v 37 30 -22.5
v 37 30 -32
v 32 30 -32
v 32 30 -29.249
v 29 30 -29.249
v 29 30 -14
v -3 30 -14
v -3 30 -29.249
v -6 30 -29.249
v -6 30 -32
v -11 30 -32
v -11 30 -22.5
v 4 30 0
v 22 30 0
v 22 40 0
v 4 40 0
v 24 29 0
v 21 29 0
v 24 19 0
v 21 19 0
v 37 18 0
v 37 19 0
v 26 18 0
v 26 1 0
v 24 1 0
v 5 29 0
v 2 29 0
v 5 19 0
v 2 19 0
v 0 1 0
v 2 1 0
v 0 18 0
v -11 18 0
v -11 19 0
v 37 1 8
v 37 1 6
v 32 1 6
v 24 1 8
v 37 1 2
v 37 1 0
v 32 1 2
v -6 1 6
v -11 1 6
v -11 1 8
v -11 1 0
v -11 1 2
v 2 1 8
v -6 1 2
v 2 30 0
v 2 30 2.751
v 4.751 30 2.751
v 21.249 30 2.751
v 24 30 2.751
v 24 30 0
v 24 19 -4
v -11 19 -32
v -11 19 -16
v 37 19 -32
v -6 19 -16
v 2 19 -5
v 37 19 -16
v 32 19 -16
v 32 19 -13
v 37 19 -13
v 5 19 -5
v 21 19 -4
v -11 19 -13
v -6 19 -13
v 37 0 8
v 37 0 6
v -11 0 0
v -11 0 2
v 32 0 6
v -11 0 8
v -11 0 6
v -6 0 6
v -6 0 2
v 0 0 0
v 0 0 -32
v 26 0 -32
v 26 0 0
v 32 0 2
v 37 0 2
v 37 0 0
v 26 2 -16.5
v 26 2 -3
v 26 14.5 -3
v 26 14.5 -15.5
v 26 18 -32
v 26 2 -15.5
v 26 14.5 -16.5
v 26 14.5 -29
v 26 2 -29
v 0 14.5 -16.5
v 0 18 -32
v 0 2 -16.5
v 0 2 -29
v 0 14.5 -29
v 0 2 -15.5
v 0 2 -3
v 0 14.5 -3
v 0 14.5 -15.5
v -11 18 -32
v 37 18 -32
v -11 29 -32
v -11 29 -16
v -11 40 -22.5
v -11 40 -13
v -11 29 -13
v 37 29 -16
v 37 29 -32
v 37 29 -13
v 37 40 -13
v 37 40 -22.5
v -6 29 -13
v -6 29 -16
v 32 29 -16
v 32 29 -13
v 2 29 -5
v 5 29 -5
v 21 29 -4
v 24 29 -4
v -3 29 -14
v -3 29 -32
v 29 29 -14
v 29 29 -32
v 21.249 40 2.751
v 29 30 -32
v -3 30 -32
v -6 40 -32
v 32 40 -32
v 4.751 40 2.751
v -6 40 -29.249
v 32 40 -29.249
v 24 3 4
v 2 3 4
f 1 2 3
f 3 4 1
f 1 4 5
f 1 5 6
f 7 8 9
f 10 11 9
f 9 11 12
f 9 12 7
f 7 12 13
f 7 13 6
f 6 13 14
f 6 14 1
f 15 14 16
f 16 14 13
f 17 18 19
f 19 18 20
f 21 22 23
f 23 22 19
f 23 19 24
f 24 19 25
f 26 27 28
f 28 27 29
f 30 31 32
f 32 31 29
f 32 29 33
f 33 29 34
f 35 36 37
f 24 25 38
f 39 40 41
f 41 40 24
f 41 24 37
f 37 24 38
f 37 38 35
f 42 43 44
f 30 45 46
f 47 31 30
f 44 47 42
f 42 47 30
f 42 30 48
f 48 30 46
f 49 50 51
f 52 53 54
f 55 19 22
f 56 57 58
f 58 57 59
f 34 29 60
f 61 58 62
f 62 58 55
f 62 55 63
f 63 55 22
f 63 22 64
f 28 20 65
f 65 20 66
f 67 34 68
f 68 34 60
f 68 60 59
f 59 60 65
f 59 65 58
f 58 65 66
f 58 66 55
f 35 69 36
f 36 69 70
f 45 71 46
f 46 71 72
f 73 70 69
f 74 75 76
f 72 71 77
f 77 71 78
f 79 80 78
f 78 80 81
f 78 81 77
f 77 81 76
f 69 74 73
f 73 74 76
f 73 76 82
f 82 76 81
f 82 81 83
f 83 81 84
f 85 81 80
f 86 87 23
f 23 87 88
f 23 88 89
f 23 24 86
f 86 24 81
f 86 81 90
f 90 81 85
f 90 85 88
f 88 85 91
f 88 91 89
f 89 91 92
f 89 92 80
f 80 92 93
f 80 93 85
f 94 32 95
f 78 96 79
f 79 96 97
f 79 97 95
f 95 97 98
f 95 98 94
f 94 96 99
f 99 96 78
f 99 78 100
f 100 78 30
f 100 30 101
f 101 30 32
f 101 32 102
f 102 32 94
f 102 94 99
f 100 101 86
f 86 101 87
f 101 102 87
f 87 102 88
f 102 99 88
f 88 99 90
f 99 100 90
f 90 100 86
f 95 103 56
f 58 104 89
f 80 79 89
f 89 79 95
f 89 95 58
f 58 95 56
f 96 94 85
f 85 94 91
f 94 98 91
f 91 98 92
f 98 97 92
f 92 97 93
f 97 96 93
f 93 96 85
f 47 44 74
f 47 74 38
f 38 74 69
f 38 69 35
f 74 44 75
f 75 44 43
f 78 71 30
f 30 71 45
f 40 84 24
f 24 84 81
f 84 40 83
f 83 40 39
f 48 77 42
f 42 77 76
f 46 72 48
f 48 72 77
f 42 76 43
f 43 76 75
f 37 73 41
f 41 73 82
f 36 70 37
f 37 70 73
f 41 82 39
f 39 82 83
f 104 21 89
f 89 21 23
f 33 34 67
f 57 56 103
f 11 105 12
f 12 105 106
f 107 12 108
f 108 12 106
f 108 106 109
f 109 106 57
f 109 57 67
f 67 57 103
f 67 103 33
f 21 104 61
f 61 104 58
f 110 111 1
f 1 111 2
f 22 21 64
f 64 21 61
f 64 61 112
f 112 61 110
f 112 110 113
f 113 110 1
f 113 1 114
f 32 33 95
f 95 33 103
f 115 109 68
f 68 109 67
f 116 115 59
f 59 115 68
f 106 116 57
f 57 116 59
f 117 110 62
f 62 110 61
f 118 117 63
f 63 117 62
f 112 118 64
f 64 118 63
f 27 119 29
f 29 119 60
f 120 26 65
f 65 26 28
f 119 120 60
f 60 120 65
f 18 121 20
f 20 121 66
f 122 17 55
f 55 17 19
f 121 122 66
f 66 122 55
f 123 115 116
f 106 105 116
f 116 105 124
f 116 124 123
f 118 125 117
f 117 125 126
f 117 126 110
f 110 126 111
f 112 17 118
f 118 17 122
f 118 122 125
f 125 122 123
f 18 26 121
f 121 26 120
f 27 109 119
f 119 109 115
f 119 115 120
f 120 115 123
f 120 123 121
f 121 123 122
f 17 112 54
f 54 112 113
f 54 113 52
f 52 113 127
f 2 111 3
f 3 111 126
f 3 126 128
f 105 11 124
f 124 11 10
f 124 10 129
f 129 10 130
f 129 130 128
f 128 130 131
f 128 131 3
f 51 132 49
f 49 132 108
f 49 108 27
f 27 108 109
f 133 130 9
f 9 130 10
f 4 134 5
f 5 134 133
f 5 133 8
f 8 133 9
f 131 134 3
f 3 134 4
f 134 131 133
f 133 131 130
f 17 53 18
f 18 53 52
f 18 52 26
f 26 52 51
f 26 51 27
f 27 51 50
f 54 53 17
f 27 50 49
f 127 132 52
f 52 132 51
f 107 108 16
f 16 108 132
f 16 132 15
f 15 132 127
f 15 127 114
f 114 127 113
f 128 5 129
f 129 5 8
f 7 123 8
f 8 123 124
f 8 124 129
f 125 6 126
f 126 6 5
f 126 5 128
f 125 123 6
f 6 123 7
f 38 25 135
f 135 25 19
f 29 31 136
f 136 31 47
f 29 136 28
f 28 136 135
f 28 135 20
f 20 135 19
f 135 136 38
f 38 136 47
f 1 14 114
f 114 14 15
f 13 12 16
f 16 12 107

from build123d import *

# Parameters (mm, degrees)
SKETCH1_W            = 27
SKETCH1_H            = 18
BOSS_EXTRUDE1_DEPTH  = 26
SKETCH2_W            = 12.5
SKETCH2_H            = 12.5
CUT_EXTRUDE1_DEPTH   = 26
SKETCH4_W            = 26
SKETCH4_H            = 18
BOSS_EXTRUDE2_DEPTH  = 5
SKETCH5_W            = 12.5
SKETCH5_H            = 12.5
CUT_EXTRUDE2_DEPTH   = 26
SKETCH7_W            = 26
SKETCH7_H            = 1
BOSS_EXTRUDE3_DEPTH  = 8
SKETCH8_W            = 48
SKETCH8_H            = 8
BOSS_EXTRUDE4_DEPTH  = 1
SKETCH9_W            = 5
SKETCH9_H            = 4
CUT_EXTRUDE4_DEPTH   = 8
SKETCH10_W           = 48
SKETCH10_H           = 32
BOSS_EXTRUDE5_DEPTH  = 1
SKETCH12_W           = 5
SKETCH12_H           = 3
BOSS_EXTRUDE7_DEPTH  = 10
SKETCH14_W           = 3
SKETCH14_H           = 5
SKETCH14_H_2         = 4
BOSS_EXTRUDE8_DEPTH  = 10
BOSS_EXTRUDE9_DEPTH  = 1
SKETCH17_W           = 38
SKETCH17_H           = 2.75142147
BOSS_EXTRUDE11_DEPTH = 10
BOSS_EXTRUDE12_DEPTH = 10
BOSS_EXTRUDE13_DEPTH = 22
SKETCH21_W           = 32
SKETCH21_H           = 18
CUT_EXTRUDE5_DEPTH   = 1
SKETCH22_W           = 22
SKETCH22_H           = 18
BOSS_EXTRUDE14_DEPTH = 8
CUT_EXTRUDE6_DEPTH   = 40
BOSS_EXTRUDE17_DEPTH = 10


with BuildPart() as part:
    # Sketch1 → Boss-Extrude1 (new body)
    with BuildSketch(Plane(origin=(0, 0, 0), x_dir=(0, 0, -1), z_dir=(1, 0, 0))):
        with Locations((13.5, 9)):
            Rectangle(SKETCH1_W, SKETCH1_H)
    extrude(amount=BOSS_EXTRUDE1_DEPTH)

    # Sketch2 → Cut-Extrude1 (cut)
    with BuildSketch(Plane(origin=(26, 0, 0), x_dir=(0, 0, -1), z_dir=(1, 0, 0))):
        with Locations((9.25, 8.25)):
            Rectangle(SKETCH2_W, SKETCH2_H)
    extrude(amount=-CUT_EXTRUDE1_DEPTH, mode=Mode.SUBTRACT)

    # Sketch4 → Boss-Extrude2 (add)
    with BuildSketch(Plane(origin=(0, 0, -27), x_dir=(-1, 0, 0), z_dir=(0, 0, -1))):
        with Locations((-13, 9)):
            Rectangle(SKETCH4_W, SKETCH4_H)
    extrude(amount=BOSS_EXTRUDE2_DEPTH)

    # Sketch5 → Cut-Extrude2 (cut)
    with BuildSketch(Plane(origin=(26, 0, 0), x_dir=(0, 0, -1), z_dir=(1, 0, 0))):
        with Locations((22.75, 8.25)):
            Rectangle(SKETCH5_W, SKETCH5_H)
    extrude(amount=-CUT_EXTRUDE2_DEPTH, mode=Mode.SUBTRACT)

    # Sketch7 → Boss-Extrude3 (add)
    with BuildSketch(Plane.XY):
        with Locations((13, 0.5)):
            Rectangle(SKETCH7_W, SKETCH7_H)
    extrude(amount=BOSS_EXTRUDE3_DEPTH)

    # Sketch8 → Boss-Extrude4 (add)
    with BuildSketch(Plane(origin=(0, 1, 0), x_dir=(1, 0, 0), z_dir=(0, 1, 0))):
        with Locations((13, -4)):
            Rectangle(SKETCH8_W, SKETCH8_H)
    extrude(amount=-BOSS_EXTRUDE4_DEPTH)

    # Sketch9 → Cut-Extrude4 (cut)
    with BuildSketch(Plane(origin=(0, 1, 0), x_dir=(1, 0, 0), z_dir=(0, 1, 0))):
        with Locations((-8.5, -4)):
            Rectangle(SKETCH9_W, SKETCH9_H)
        with Locations((34.5, -4)):
            Rectangle(SKETCH9_W, SKETCH9_H)
    extrude(amount=-CUT_EXTRUDE4_DEPTH, mode=Mode.SUBTRACT)

    # Sketch10 → Boss-Extrude5 (add)
    with BuildSketch(Plane(origin=(0, 18, 0), x_dir=(1, 0, 0), z_dir=(0, 1, 0))):
        with Locations((13, 16)):
            Rectangle(SKETCH10_W, SKETCH10_H)
    extrude(amount=BOSS_EXTRUDE5_DEPTH)

    # Sketch12 → Boss-Extrude7 (add)
    with BuildSketch(Plane(origin=(0, 19, 0), x_dir=(1, 0, 0), z_dir=(0, 1, 0))):
        with Locations((-8.5, 14.5)):
            Rectangle(SKETCH12_W, SKETCH12_H)
        with Locations((34.5, 14.5)):
            Rectangle(SKETCH12_W, SKETCH12_H)
    extrude(amount=BOSS_EXTRUDE7_DEPTH)

    # Sketch14 → Boss-Extrude8 (add)
    with BuildSketch(Plane(origin=(0, 19, 0), x_dir=(1, 0, 0), z_dir=(0, 1, 0))):
        with Locations((3.5, 2.5)):
            Rectangle(SKETCH14_W, SKETCH14_H)
        with Locations((22.5, 2)):
            Rectangle(SKETCH14_W, SKETCH14_H_2)
    extrude(amount=BOSS_EXTRUDE8_DEPTH)

    # Sketch15 → Boss-Extrude9 (add)
    with BuildSketch(Plane(origin=(0, 29, 0), x_dir=(1, 0, 0), z_dir=(0, 1, 0))):
        Polygon((2, 0), (-11, 13), (-11, 16), (-11, 32), (37, 32), (37, 13), (24, 0), align=None)
    extrude(amount=BOSS_EXTRUDE9_DEPTH)

    # Sketch17 → Boss-Extrude11 (add)
    with BuildSketch(Plane(origin=(0, 30, 0), x_dir=(1, 0, 0), z_dir=(0, 1, 0))):
        with Locations((13, 30.624289265)):
            Rectangle(SKETCH17_W, SKETCH17_H)
    extrude(amount=BOSS_EXTRUDE11_DEPTH)



with BuildPart() as body_2:
    # Sketch18 → Boss-Extrude12 (new body)
    with BuildSketch(Plane(origin=(0, 30, 0), x_dir=(1, 0, 0), z_dir=(0, 1, 0))):
        Polygon((2, 0), (4.75142147, -2.75142147), (21.24857853, -2.75142147), (24, 0), align=None)
    extrude(amount=BOSS_EXTRUDE12_DEPTH)


with BuildPart() as part_1:
    add(part.part)

    add(body_2.part)  # Boss-Extrude13 merges body 2
    # Sketch19 → Boss-Extrude13 (add)
    with BuildSketch(Plane(origin=(2, 30, 0), x_dir=(0, 0, 1), z_dir=(-1, 0, 0))):
        Polygon((0, -1), (2.75142147, 0), (0, 0), align=None)
    extrude(amount=-BOSS_EXTRUDE13_DEPTH)

    # Sketch21 → Cut-Extrude5 (cut)
    with BuildSketch(Plane(origin=(0, 30, 0), x_dir=(1, 0, 0), z_dir=(0, 1, 0))):
        with Locations((13, 23)):
            Rectangle(SKETCH21_W, SKETCH21_H)
    extrude(amount=-CUT_EXTRUDE5_DEPTH, mode=Mode.SUBTRACT)

    # Sketch22 → Boss-Extrude14 (add)
    with BuildSketch(Plane.XY):
        with Locations((13, 10)):
            Rectangle(SKETCH22_W, SKETCH22_H)
    extrude(amount=BOSS_EXTRUDE14_DEPTH)

    # Sketch23 → Cut-Extrude6 (cut)
    with BuildSketch(Plane(origin=(24, 0, 0), x_dir=(0, 0, -1), z_dir=(1, 0, 0))):
        Polygon((0, 19), (-4, 3), (-8, 1), (-8, 19), align=None)
    extrude(amount=-CUT_EXTRUDE6_DEPTH, mode=Mode.SUBTRACT)

    # Sketch25 → Boss-Extrude17 (add)
    with BuildSketch(Plane(origin=(0, 30, 0), x_dir=(1, 0, 0), z_dir=(0, 1, 0))):
        Polygon((24, 0), (37, 13), (37, 22.5), (22, 0), align=None)
        Polygon((2, 0), (-11, 13), (-11, 22.5), (4, 0), align=None)
    extrude(amount=BOSS_EXTRUDE17_DEPTH)


solid = part_1.part
